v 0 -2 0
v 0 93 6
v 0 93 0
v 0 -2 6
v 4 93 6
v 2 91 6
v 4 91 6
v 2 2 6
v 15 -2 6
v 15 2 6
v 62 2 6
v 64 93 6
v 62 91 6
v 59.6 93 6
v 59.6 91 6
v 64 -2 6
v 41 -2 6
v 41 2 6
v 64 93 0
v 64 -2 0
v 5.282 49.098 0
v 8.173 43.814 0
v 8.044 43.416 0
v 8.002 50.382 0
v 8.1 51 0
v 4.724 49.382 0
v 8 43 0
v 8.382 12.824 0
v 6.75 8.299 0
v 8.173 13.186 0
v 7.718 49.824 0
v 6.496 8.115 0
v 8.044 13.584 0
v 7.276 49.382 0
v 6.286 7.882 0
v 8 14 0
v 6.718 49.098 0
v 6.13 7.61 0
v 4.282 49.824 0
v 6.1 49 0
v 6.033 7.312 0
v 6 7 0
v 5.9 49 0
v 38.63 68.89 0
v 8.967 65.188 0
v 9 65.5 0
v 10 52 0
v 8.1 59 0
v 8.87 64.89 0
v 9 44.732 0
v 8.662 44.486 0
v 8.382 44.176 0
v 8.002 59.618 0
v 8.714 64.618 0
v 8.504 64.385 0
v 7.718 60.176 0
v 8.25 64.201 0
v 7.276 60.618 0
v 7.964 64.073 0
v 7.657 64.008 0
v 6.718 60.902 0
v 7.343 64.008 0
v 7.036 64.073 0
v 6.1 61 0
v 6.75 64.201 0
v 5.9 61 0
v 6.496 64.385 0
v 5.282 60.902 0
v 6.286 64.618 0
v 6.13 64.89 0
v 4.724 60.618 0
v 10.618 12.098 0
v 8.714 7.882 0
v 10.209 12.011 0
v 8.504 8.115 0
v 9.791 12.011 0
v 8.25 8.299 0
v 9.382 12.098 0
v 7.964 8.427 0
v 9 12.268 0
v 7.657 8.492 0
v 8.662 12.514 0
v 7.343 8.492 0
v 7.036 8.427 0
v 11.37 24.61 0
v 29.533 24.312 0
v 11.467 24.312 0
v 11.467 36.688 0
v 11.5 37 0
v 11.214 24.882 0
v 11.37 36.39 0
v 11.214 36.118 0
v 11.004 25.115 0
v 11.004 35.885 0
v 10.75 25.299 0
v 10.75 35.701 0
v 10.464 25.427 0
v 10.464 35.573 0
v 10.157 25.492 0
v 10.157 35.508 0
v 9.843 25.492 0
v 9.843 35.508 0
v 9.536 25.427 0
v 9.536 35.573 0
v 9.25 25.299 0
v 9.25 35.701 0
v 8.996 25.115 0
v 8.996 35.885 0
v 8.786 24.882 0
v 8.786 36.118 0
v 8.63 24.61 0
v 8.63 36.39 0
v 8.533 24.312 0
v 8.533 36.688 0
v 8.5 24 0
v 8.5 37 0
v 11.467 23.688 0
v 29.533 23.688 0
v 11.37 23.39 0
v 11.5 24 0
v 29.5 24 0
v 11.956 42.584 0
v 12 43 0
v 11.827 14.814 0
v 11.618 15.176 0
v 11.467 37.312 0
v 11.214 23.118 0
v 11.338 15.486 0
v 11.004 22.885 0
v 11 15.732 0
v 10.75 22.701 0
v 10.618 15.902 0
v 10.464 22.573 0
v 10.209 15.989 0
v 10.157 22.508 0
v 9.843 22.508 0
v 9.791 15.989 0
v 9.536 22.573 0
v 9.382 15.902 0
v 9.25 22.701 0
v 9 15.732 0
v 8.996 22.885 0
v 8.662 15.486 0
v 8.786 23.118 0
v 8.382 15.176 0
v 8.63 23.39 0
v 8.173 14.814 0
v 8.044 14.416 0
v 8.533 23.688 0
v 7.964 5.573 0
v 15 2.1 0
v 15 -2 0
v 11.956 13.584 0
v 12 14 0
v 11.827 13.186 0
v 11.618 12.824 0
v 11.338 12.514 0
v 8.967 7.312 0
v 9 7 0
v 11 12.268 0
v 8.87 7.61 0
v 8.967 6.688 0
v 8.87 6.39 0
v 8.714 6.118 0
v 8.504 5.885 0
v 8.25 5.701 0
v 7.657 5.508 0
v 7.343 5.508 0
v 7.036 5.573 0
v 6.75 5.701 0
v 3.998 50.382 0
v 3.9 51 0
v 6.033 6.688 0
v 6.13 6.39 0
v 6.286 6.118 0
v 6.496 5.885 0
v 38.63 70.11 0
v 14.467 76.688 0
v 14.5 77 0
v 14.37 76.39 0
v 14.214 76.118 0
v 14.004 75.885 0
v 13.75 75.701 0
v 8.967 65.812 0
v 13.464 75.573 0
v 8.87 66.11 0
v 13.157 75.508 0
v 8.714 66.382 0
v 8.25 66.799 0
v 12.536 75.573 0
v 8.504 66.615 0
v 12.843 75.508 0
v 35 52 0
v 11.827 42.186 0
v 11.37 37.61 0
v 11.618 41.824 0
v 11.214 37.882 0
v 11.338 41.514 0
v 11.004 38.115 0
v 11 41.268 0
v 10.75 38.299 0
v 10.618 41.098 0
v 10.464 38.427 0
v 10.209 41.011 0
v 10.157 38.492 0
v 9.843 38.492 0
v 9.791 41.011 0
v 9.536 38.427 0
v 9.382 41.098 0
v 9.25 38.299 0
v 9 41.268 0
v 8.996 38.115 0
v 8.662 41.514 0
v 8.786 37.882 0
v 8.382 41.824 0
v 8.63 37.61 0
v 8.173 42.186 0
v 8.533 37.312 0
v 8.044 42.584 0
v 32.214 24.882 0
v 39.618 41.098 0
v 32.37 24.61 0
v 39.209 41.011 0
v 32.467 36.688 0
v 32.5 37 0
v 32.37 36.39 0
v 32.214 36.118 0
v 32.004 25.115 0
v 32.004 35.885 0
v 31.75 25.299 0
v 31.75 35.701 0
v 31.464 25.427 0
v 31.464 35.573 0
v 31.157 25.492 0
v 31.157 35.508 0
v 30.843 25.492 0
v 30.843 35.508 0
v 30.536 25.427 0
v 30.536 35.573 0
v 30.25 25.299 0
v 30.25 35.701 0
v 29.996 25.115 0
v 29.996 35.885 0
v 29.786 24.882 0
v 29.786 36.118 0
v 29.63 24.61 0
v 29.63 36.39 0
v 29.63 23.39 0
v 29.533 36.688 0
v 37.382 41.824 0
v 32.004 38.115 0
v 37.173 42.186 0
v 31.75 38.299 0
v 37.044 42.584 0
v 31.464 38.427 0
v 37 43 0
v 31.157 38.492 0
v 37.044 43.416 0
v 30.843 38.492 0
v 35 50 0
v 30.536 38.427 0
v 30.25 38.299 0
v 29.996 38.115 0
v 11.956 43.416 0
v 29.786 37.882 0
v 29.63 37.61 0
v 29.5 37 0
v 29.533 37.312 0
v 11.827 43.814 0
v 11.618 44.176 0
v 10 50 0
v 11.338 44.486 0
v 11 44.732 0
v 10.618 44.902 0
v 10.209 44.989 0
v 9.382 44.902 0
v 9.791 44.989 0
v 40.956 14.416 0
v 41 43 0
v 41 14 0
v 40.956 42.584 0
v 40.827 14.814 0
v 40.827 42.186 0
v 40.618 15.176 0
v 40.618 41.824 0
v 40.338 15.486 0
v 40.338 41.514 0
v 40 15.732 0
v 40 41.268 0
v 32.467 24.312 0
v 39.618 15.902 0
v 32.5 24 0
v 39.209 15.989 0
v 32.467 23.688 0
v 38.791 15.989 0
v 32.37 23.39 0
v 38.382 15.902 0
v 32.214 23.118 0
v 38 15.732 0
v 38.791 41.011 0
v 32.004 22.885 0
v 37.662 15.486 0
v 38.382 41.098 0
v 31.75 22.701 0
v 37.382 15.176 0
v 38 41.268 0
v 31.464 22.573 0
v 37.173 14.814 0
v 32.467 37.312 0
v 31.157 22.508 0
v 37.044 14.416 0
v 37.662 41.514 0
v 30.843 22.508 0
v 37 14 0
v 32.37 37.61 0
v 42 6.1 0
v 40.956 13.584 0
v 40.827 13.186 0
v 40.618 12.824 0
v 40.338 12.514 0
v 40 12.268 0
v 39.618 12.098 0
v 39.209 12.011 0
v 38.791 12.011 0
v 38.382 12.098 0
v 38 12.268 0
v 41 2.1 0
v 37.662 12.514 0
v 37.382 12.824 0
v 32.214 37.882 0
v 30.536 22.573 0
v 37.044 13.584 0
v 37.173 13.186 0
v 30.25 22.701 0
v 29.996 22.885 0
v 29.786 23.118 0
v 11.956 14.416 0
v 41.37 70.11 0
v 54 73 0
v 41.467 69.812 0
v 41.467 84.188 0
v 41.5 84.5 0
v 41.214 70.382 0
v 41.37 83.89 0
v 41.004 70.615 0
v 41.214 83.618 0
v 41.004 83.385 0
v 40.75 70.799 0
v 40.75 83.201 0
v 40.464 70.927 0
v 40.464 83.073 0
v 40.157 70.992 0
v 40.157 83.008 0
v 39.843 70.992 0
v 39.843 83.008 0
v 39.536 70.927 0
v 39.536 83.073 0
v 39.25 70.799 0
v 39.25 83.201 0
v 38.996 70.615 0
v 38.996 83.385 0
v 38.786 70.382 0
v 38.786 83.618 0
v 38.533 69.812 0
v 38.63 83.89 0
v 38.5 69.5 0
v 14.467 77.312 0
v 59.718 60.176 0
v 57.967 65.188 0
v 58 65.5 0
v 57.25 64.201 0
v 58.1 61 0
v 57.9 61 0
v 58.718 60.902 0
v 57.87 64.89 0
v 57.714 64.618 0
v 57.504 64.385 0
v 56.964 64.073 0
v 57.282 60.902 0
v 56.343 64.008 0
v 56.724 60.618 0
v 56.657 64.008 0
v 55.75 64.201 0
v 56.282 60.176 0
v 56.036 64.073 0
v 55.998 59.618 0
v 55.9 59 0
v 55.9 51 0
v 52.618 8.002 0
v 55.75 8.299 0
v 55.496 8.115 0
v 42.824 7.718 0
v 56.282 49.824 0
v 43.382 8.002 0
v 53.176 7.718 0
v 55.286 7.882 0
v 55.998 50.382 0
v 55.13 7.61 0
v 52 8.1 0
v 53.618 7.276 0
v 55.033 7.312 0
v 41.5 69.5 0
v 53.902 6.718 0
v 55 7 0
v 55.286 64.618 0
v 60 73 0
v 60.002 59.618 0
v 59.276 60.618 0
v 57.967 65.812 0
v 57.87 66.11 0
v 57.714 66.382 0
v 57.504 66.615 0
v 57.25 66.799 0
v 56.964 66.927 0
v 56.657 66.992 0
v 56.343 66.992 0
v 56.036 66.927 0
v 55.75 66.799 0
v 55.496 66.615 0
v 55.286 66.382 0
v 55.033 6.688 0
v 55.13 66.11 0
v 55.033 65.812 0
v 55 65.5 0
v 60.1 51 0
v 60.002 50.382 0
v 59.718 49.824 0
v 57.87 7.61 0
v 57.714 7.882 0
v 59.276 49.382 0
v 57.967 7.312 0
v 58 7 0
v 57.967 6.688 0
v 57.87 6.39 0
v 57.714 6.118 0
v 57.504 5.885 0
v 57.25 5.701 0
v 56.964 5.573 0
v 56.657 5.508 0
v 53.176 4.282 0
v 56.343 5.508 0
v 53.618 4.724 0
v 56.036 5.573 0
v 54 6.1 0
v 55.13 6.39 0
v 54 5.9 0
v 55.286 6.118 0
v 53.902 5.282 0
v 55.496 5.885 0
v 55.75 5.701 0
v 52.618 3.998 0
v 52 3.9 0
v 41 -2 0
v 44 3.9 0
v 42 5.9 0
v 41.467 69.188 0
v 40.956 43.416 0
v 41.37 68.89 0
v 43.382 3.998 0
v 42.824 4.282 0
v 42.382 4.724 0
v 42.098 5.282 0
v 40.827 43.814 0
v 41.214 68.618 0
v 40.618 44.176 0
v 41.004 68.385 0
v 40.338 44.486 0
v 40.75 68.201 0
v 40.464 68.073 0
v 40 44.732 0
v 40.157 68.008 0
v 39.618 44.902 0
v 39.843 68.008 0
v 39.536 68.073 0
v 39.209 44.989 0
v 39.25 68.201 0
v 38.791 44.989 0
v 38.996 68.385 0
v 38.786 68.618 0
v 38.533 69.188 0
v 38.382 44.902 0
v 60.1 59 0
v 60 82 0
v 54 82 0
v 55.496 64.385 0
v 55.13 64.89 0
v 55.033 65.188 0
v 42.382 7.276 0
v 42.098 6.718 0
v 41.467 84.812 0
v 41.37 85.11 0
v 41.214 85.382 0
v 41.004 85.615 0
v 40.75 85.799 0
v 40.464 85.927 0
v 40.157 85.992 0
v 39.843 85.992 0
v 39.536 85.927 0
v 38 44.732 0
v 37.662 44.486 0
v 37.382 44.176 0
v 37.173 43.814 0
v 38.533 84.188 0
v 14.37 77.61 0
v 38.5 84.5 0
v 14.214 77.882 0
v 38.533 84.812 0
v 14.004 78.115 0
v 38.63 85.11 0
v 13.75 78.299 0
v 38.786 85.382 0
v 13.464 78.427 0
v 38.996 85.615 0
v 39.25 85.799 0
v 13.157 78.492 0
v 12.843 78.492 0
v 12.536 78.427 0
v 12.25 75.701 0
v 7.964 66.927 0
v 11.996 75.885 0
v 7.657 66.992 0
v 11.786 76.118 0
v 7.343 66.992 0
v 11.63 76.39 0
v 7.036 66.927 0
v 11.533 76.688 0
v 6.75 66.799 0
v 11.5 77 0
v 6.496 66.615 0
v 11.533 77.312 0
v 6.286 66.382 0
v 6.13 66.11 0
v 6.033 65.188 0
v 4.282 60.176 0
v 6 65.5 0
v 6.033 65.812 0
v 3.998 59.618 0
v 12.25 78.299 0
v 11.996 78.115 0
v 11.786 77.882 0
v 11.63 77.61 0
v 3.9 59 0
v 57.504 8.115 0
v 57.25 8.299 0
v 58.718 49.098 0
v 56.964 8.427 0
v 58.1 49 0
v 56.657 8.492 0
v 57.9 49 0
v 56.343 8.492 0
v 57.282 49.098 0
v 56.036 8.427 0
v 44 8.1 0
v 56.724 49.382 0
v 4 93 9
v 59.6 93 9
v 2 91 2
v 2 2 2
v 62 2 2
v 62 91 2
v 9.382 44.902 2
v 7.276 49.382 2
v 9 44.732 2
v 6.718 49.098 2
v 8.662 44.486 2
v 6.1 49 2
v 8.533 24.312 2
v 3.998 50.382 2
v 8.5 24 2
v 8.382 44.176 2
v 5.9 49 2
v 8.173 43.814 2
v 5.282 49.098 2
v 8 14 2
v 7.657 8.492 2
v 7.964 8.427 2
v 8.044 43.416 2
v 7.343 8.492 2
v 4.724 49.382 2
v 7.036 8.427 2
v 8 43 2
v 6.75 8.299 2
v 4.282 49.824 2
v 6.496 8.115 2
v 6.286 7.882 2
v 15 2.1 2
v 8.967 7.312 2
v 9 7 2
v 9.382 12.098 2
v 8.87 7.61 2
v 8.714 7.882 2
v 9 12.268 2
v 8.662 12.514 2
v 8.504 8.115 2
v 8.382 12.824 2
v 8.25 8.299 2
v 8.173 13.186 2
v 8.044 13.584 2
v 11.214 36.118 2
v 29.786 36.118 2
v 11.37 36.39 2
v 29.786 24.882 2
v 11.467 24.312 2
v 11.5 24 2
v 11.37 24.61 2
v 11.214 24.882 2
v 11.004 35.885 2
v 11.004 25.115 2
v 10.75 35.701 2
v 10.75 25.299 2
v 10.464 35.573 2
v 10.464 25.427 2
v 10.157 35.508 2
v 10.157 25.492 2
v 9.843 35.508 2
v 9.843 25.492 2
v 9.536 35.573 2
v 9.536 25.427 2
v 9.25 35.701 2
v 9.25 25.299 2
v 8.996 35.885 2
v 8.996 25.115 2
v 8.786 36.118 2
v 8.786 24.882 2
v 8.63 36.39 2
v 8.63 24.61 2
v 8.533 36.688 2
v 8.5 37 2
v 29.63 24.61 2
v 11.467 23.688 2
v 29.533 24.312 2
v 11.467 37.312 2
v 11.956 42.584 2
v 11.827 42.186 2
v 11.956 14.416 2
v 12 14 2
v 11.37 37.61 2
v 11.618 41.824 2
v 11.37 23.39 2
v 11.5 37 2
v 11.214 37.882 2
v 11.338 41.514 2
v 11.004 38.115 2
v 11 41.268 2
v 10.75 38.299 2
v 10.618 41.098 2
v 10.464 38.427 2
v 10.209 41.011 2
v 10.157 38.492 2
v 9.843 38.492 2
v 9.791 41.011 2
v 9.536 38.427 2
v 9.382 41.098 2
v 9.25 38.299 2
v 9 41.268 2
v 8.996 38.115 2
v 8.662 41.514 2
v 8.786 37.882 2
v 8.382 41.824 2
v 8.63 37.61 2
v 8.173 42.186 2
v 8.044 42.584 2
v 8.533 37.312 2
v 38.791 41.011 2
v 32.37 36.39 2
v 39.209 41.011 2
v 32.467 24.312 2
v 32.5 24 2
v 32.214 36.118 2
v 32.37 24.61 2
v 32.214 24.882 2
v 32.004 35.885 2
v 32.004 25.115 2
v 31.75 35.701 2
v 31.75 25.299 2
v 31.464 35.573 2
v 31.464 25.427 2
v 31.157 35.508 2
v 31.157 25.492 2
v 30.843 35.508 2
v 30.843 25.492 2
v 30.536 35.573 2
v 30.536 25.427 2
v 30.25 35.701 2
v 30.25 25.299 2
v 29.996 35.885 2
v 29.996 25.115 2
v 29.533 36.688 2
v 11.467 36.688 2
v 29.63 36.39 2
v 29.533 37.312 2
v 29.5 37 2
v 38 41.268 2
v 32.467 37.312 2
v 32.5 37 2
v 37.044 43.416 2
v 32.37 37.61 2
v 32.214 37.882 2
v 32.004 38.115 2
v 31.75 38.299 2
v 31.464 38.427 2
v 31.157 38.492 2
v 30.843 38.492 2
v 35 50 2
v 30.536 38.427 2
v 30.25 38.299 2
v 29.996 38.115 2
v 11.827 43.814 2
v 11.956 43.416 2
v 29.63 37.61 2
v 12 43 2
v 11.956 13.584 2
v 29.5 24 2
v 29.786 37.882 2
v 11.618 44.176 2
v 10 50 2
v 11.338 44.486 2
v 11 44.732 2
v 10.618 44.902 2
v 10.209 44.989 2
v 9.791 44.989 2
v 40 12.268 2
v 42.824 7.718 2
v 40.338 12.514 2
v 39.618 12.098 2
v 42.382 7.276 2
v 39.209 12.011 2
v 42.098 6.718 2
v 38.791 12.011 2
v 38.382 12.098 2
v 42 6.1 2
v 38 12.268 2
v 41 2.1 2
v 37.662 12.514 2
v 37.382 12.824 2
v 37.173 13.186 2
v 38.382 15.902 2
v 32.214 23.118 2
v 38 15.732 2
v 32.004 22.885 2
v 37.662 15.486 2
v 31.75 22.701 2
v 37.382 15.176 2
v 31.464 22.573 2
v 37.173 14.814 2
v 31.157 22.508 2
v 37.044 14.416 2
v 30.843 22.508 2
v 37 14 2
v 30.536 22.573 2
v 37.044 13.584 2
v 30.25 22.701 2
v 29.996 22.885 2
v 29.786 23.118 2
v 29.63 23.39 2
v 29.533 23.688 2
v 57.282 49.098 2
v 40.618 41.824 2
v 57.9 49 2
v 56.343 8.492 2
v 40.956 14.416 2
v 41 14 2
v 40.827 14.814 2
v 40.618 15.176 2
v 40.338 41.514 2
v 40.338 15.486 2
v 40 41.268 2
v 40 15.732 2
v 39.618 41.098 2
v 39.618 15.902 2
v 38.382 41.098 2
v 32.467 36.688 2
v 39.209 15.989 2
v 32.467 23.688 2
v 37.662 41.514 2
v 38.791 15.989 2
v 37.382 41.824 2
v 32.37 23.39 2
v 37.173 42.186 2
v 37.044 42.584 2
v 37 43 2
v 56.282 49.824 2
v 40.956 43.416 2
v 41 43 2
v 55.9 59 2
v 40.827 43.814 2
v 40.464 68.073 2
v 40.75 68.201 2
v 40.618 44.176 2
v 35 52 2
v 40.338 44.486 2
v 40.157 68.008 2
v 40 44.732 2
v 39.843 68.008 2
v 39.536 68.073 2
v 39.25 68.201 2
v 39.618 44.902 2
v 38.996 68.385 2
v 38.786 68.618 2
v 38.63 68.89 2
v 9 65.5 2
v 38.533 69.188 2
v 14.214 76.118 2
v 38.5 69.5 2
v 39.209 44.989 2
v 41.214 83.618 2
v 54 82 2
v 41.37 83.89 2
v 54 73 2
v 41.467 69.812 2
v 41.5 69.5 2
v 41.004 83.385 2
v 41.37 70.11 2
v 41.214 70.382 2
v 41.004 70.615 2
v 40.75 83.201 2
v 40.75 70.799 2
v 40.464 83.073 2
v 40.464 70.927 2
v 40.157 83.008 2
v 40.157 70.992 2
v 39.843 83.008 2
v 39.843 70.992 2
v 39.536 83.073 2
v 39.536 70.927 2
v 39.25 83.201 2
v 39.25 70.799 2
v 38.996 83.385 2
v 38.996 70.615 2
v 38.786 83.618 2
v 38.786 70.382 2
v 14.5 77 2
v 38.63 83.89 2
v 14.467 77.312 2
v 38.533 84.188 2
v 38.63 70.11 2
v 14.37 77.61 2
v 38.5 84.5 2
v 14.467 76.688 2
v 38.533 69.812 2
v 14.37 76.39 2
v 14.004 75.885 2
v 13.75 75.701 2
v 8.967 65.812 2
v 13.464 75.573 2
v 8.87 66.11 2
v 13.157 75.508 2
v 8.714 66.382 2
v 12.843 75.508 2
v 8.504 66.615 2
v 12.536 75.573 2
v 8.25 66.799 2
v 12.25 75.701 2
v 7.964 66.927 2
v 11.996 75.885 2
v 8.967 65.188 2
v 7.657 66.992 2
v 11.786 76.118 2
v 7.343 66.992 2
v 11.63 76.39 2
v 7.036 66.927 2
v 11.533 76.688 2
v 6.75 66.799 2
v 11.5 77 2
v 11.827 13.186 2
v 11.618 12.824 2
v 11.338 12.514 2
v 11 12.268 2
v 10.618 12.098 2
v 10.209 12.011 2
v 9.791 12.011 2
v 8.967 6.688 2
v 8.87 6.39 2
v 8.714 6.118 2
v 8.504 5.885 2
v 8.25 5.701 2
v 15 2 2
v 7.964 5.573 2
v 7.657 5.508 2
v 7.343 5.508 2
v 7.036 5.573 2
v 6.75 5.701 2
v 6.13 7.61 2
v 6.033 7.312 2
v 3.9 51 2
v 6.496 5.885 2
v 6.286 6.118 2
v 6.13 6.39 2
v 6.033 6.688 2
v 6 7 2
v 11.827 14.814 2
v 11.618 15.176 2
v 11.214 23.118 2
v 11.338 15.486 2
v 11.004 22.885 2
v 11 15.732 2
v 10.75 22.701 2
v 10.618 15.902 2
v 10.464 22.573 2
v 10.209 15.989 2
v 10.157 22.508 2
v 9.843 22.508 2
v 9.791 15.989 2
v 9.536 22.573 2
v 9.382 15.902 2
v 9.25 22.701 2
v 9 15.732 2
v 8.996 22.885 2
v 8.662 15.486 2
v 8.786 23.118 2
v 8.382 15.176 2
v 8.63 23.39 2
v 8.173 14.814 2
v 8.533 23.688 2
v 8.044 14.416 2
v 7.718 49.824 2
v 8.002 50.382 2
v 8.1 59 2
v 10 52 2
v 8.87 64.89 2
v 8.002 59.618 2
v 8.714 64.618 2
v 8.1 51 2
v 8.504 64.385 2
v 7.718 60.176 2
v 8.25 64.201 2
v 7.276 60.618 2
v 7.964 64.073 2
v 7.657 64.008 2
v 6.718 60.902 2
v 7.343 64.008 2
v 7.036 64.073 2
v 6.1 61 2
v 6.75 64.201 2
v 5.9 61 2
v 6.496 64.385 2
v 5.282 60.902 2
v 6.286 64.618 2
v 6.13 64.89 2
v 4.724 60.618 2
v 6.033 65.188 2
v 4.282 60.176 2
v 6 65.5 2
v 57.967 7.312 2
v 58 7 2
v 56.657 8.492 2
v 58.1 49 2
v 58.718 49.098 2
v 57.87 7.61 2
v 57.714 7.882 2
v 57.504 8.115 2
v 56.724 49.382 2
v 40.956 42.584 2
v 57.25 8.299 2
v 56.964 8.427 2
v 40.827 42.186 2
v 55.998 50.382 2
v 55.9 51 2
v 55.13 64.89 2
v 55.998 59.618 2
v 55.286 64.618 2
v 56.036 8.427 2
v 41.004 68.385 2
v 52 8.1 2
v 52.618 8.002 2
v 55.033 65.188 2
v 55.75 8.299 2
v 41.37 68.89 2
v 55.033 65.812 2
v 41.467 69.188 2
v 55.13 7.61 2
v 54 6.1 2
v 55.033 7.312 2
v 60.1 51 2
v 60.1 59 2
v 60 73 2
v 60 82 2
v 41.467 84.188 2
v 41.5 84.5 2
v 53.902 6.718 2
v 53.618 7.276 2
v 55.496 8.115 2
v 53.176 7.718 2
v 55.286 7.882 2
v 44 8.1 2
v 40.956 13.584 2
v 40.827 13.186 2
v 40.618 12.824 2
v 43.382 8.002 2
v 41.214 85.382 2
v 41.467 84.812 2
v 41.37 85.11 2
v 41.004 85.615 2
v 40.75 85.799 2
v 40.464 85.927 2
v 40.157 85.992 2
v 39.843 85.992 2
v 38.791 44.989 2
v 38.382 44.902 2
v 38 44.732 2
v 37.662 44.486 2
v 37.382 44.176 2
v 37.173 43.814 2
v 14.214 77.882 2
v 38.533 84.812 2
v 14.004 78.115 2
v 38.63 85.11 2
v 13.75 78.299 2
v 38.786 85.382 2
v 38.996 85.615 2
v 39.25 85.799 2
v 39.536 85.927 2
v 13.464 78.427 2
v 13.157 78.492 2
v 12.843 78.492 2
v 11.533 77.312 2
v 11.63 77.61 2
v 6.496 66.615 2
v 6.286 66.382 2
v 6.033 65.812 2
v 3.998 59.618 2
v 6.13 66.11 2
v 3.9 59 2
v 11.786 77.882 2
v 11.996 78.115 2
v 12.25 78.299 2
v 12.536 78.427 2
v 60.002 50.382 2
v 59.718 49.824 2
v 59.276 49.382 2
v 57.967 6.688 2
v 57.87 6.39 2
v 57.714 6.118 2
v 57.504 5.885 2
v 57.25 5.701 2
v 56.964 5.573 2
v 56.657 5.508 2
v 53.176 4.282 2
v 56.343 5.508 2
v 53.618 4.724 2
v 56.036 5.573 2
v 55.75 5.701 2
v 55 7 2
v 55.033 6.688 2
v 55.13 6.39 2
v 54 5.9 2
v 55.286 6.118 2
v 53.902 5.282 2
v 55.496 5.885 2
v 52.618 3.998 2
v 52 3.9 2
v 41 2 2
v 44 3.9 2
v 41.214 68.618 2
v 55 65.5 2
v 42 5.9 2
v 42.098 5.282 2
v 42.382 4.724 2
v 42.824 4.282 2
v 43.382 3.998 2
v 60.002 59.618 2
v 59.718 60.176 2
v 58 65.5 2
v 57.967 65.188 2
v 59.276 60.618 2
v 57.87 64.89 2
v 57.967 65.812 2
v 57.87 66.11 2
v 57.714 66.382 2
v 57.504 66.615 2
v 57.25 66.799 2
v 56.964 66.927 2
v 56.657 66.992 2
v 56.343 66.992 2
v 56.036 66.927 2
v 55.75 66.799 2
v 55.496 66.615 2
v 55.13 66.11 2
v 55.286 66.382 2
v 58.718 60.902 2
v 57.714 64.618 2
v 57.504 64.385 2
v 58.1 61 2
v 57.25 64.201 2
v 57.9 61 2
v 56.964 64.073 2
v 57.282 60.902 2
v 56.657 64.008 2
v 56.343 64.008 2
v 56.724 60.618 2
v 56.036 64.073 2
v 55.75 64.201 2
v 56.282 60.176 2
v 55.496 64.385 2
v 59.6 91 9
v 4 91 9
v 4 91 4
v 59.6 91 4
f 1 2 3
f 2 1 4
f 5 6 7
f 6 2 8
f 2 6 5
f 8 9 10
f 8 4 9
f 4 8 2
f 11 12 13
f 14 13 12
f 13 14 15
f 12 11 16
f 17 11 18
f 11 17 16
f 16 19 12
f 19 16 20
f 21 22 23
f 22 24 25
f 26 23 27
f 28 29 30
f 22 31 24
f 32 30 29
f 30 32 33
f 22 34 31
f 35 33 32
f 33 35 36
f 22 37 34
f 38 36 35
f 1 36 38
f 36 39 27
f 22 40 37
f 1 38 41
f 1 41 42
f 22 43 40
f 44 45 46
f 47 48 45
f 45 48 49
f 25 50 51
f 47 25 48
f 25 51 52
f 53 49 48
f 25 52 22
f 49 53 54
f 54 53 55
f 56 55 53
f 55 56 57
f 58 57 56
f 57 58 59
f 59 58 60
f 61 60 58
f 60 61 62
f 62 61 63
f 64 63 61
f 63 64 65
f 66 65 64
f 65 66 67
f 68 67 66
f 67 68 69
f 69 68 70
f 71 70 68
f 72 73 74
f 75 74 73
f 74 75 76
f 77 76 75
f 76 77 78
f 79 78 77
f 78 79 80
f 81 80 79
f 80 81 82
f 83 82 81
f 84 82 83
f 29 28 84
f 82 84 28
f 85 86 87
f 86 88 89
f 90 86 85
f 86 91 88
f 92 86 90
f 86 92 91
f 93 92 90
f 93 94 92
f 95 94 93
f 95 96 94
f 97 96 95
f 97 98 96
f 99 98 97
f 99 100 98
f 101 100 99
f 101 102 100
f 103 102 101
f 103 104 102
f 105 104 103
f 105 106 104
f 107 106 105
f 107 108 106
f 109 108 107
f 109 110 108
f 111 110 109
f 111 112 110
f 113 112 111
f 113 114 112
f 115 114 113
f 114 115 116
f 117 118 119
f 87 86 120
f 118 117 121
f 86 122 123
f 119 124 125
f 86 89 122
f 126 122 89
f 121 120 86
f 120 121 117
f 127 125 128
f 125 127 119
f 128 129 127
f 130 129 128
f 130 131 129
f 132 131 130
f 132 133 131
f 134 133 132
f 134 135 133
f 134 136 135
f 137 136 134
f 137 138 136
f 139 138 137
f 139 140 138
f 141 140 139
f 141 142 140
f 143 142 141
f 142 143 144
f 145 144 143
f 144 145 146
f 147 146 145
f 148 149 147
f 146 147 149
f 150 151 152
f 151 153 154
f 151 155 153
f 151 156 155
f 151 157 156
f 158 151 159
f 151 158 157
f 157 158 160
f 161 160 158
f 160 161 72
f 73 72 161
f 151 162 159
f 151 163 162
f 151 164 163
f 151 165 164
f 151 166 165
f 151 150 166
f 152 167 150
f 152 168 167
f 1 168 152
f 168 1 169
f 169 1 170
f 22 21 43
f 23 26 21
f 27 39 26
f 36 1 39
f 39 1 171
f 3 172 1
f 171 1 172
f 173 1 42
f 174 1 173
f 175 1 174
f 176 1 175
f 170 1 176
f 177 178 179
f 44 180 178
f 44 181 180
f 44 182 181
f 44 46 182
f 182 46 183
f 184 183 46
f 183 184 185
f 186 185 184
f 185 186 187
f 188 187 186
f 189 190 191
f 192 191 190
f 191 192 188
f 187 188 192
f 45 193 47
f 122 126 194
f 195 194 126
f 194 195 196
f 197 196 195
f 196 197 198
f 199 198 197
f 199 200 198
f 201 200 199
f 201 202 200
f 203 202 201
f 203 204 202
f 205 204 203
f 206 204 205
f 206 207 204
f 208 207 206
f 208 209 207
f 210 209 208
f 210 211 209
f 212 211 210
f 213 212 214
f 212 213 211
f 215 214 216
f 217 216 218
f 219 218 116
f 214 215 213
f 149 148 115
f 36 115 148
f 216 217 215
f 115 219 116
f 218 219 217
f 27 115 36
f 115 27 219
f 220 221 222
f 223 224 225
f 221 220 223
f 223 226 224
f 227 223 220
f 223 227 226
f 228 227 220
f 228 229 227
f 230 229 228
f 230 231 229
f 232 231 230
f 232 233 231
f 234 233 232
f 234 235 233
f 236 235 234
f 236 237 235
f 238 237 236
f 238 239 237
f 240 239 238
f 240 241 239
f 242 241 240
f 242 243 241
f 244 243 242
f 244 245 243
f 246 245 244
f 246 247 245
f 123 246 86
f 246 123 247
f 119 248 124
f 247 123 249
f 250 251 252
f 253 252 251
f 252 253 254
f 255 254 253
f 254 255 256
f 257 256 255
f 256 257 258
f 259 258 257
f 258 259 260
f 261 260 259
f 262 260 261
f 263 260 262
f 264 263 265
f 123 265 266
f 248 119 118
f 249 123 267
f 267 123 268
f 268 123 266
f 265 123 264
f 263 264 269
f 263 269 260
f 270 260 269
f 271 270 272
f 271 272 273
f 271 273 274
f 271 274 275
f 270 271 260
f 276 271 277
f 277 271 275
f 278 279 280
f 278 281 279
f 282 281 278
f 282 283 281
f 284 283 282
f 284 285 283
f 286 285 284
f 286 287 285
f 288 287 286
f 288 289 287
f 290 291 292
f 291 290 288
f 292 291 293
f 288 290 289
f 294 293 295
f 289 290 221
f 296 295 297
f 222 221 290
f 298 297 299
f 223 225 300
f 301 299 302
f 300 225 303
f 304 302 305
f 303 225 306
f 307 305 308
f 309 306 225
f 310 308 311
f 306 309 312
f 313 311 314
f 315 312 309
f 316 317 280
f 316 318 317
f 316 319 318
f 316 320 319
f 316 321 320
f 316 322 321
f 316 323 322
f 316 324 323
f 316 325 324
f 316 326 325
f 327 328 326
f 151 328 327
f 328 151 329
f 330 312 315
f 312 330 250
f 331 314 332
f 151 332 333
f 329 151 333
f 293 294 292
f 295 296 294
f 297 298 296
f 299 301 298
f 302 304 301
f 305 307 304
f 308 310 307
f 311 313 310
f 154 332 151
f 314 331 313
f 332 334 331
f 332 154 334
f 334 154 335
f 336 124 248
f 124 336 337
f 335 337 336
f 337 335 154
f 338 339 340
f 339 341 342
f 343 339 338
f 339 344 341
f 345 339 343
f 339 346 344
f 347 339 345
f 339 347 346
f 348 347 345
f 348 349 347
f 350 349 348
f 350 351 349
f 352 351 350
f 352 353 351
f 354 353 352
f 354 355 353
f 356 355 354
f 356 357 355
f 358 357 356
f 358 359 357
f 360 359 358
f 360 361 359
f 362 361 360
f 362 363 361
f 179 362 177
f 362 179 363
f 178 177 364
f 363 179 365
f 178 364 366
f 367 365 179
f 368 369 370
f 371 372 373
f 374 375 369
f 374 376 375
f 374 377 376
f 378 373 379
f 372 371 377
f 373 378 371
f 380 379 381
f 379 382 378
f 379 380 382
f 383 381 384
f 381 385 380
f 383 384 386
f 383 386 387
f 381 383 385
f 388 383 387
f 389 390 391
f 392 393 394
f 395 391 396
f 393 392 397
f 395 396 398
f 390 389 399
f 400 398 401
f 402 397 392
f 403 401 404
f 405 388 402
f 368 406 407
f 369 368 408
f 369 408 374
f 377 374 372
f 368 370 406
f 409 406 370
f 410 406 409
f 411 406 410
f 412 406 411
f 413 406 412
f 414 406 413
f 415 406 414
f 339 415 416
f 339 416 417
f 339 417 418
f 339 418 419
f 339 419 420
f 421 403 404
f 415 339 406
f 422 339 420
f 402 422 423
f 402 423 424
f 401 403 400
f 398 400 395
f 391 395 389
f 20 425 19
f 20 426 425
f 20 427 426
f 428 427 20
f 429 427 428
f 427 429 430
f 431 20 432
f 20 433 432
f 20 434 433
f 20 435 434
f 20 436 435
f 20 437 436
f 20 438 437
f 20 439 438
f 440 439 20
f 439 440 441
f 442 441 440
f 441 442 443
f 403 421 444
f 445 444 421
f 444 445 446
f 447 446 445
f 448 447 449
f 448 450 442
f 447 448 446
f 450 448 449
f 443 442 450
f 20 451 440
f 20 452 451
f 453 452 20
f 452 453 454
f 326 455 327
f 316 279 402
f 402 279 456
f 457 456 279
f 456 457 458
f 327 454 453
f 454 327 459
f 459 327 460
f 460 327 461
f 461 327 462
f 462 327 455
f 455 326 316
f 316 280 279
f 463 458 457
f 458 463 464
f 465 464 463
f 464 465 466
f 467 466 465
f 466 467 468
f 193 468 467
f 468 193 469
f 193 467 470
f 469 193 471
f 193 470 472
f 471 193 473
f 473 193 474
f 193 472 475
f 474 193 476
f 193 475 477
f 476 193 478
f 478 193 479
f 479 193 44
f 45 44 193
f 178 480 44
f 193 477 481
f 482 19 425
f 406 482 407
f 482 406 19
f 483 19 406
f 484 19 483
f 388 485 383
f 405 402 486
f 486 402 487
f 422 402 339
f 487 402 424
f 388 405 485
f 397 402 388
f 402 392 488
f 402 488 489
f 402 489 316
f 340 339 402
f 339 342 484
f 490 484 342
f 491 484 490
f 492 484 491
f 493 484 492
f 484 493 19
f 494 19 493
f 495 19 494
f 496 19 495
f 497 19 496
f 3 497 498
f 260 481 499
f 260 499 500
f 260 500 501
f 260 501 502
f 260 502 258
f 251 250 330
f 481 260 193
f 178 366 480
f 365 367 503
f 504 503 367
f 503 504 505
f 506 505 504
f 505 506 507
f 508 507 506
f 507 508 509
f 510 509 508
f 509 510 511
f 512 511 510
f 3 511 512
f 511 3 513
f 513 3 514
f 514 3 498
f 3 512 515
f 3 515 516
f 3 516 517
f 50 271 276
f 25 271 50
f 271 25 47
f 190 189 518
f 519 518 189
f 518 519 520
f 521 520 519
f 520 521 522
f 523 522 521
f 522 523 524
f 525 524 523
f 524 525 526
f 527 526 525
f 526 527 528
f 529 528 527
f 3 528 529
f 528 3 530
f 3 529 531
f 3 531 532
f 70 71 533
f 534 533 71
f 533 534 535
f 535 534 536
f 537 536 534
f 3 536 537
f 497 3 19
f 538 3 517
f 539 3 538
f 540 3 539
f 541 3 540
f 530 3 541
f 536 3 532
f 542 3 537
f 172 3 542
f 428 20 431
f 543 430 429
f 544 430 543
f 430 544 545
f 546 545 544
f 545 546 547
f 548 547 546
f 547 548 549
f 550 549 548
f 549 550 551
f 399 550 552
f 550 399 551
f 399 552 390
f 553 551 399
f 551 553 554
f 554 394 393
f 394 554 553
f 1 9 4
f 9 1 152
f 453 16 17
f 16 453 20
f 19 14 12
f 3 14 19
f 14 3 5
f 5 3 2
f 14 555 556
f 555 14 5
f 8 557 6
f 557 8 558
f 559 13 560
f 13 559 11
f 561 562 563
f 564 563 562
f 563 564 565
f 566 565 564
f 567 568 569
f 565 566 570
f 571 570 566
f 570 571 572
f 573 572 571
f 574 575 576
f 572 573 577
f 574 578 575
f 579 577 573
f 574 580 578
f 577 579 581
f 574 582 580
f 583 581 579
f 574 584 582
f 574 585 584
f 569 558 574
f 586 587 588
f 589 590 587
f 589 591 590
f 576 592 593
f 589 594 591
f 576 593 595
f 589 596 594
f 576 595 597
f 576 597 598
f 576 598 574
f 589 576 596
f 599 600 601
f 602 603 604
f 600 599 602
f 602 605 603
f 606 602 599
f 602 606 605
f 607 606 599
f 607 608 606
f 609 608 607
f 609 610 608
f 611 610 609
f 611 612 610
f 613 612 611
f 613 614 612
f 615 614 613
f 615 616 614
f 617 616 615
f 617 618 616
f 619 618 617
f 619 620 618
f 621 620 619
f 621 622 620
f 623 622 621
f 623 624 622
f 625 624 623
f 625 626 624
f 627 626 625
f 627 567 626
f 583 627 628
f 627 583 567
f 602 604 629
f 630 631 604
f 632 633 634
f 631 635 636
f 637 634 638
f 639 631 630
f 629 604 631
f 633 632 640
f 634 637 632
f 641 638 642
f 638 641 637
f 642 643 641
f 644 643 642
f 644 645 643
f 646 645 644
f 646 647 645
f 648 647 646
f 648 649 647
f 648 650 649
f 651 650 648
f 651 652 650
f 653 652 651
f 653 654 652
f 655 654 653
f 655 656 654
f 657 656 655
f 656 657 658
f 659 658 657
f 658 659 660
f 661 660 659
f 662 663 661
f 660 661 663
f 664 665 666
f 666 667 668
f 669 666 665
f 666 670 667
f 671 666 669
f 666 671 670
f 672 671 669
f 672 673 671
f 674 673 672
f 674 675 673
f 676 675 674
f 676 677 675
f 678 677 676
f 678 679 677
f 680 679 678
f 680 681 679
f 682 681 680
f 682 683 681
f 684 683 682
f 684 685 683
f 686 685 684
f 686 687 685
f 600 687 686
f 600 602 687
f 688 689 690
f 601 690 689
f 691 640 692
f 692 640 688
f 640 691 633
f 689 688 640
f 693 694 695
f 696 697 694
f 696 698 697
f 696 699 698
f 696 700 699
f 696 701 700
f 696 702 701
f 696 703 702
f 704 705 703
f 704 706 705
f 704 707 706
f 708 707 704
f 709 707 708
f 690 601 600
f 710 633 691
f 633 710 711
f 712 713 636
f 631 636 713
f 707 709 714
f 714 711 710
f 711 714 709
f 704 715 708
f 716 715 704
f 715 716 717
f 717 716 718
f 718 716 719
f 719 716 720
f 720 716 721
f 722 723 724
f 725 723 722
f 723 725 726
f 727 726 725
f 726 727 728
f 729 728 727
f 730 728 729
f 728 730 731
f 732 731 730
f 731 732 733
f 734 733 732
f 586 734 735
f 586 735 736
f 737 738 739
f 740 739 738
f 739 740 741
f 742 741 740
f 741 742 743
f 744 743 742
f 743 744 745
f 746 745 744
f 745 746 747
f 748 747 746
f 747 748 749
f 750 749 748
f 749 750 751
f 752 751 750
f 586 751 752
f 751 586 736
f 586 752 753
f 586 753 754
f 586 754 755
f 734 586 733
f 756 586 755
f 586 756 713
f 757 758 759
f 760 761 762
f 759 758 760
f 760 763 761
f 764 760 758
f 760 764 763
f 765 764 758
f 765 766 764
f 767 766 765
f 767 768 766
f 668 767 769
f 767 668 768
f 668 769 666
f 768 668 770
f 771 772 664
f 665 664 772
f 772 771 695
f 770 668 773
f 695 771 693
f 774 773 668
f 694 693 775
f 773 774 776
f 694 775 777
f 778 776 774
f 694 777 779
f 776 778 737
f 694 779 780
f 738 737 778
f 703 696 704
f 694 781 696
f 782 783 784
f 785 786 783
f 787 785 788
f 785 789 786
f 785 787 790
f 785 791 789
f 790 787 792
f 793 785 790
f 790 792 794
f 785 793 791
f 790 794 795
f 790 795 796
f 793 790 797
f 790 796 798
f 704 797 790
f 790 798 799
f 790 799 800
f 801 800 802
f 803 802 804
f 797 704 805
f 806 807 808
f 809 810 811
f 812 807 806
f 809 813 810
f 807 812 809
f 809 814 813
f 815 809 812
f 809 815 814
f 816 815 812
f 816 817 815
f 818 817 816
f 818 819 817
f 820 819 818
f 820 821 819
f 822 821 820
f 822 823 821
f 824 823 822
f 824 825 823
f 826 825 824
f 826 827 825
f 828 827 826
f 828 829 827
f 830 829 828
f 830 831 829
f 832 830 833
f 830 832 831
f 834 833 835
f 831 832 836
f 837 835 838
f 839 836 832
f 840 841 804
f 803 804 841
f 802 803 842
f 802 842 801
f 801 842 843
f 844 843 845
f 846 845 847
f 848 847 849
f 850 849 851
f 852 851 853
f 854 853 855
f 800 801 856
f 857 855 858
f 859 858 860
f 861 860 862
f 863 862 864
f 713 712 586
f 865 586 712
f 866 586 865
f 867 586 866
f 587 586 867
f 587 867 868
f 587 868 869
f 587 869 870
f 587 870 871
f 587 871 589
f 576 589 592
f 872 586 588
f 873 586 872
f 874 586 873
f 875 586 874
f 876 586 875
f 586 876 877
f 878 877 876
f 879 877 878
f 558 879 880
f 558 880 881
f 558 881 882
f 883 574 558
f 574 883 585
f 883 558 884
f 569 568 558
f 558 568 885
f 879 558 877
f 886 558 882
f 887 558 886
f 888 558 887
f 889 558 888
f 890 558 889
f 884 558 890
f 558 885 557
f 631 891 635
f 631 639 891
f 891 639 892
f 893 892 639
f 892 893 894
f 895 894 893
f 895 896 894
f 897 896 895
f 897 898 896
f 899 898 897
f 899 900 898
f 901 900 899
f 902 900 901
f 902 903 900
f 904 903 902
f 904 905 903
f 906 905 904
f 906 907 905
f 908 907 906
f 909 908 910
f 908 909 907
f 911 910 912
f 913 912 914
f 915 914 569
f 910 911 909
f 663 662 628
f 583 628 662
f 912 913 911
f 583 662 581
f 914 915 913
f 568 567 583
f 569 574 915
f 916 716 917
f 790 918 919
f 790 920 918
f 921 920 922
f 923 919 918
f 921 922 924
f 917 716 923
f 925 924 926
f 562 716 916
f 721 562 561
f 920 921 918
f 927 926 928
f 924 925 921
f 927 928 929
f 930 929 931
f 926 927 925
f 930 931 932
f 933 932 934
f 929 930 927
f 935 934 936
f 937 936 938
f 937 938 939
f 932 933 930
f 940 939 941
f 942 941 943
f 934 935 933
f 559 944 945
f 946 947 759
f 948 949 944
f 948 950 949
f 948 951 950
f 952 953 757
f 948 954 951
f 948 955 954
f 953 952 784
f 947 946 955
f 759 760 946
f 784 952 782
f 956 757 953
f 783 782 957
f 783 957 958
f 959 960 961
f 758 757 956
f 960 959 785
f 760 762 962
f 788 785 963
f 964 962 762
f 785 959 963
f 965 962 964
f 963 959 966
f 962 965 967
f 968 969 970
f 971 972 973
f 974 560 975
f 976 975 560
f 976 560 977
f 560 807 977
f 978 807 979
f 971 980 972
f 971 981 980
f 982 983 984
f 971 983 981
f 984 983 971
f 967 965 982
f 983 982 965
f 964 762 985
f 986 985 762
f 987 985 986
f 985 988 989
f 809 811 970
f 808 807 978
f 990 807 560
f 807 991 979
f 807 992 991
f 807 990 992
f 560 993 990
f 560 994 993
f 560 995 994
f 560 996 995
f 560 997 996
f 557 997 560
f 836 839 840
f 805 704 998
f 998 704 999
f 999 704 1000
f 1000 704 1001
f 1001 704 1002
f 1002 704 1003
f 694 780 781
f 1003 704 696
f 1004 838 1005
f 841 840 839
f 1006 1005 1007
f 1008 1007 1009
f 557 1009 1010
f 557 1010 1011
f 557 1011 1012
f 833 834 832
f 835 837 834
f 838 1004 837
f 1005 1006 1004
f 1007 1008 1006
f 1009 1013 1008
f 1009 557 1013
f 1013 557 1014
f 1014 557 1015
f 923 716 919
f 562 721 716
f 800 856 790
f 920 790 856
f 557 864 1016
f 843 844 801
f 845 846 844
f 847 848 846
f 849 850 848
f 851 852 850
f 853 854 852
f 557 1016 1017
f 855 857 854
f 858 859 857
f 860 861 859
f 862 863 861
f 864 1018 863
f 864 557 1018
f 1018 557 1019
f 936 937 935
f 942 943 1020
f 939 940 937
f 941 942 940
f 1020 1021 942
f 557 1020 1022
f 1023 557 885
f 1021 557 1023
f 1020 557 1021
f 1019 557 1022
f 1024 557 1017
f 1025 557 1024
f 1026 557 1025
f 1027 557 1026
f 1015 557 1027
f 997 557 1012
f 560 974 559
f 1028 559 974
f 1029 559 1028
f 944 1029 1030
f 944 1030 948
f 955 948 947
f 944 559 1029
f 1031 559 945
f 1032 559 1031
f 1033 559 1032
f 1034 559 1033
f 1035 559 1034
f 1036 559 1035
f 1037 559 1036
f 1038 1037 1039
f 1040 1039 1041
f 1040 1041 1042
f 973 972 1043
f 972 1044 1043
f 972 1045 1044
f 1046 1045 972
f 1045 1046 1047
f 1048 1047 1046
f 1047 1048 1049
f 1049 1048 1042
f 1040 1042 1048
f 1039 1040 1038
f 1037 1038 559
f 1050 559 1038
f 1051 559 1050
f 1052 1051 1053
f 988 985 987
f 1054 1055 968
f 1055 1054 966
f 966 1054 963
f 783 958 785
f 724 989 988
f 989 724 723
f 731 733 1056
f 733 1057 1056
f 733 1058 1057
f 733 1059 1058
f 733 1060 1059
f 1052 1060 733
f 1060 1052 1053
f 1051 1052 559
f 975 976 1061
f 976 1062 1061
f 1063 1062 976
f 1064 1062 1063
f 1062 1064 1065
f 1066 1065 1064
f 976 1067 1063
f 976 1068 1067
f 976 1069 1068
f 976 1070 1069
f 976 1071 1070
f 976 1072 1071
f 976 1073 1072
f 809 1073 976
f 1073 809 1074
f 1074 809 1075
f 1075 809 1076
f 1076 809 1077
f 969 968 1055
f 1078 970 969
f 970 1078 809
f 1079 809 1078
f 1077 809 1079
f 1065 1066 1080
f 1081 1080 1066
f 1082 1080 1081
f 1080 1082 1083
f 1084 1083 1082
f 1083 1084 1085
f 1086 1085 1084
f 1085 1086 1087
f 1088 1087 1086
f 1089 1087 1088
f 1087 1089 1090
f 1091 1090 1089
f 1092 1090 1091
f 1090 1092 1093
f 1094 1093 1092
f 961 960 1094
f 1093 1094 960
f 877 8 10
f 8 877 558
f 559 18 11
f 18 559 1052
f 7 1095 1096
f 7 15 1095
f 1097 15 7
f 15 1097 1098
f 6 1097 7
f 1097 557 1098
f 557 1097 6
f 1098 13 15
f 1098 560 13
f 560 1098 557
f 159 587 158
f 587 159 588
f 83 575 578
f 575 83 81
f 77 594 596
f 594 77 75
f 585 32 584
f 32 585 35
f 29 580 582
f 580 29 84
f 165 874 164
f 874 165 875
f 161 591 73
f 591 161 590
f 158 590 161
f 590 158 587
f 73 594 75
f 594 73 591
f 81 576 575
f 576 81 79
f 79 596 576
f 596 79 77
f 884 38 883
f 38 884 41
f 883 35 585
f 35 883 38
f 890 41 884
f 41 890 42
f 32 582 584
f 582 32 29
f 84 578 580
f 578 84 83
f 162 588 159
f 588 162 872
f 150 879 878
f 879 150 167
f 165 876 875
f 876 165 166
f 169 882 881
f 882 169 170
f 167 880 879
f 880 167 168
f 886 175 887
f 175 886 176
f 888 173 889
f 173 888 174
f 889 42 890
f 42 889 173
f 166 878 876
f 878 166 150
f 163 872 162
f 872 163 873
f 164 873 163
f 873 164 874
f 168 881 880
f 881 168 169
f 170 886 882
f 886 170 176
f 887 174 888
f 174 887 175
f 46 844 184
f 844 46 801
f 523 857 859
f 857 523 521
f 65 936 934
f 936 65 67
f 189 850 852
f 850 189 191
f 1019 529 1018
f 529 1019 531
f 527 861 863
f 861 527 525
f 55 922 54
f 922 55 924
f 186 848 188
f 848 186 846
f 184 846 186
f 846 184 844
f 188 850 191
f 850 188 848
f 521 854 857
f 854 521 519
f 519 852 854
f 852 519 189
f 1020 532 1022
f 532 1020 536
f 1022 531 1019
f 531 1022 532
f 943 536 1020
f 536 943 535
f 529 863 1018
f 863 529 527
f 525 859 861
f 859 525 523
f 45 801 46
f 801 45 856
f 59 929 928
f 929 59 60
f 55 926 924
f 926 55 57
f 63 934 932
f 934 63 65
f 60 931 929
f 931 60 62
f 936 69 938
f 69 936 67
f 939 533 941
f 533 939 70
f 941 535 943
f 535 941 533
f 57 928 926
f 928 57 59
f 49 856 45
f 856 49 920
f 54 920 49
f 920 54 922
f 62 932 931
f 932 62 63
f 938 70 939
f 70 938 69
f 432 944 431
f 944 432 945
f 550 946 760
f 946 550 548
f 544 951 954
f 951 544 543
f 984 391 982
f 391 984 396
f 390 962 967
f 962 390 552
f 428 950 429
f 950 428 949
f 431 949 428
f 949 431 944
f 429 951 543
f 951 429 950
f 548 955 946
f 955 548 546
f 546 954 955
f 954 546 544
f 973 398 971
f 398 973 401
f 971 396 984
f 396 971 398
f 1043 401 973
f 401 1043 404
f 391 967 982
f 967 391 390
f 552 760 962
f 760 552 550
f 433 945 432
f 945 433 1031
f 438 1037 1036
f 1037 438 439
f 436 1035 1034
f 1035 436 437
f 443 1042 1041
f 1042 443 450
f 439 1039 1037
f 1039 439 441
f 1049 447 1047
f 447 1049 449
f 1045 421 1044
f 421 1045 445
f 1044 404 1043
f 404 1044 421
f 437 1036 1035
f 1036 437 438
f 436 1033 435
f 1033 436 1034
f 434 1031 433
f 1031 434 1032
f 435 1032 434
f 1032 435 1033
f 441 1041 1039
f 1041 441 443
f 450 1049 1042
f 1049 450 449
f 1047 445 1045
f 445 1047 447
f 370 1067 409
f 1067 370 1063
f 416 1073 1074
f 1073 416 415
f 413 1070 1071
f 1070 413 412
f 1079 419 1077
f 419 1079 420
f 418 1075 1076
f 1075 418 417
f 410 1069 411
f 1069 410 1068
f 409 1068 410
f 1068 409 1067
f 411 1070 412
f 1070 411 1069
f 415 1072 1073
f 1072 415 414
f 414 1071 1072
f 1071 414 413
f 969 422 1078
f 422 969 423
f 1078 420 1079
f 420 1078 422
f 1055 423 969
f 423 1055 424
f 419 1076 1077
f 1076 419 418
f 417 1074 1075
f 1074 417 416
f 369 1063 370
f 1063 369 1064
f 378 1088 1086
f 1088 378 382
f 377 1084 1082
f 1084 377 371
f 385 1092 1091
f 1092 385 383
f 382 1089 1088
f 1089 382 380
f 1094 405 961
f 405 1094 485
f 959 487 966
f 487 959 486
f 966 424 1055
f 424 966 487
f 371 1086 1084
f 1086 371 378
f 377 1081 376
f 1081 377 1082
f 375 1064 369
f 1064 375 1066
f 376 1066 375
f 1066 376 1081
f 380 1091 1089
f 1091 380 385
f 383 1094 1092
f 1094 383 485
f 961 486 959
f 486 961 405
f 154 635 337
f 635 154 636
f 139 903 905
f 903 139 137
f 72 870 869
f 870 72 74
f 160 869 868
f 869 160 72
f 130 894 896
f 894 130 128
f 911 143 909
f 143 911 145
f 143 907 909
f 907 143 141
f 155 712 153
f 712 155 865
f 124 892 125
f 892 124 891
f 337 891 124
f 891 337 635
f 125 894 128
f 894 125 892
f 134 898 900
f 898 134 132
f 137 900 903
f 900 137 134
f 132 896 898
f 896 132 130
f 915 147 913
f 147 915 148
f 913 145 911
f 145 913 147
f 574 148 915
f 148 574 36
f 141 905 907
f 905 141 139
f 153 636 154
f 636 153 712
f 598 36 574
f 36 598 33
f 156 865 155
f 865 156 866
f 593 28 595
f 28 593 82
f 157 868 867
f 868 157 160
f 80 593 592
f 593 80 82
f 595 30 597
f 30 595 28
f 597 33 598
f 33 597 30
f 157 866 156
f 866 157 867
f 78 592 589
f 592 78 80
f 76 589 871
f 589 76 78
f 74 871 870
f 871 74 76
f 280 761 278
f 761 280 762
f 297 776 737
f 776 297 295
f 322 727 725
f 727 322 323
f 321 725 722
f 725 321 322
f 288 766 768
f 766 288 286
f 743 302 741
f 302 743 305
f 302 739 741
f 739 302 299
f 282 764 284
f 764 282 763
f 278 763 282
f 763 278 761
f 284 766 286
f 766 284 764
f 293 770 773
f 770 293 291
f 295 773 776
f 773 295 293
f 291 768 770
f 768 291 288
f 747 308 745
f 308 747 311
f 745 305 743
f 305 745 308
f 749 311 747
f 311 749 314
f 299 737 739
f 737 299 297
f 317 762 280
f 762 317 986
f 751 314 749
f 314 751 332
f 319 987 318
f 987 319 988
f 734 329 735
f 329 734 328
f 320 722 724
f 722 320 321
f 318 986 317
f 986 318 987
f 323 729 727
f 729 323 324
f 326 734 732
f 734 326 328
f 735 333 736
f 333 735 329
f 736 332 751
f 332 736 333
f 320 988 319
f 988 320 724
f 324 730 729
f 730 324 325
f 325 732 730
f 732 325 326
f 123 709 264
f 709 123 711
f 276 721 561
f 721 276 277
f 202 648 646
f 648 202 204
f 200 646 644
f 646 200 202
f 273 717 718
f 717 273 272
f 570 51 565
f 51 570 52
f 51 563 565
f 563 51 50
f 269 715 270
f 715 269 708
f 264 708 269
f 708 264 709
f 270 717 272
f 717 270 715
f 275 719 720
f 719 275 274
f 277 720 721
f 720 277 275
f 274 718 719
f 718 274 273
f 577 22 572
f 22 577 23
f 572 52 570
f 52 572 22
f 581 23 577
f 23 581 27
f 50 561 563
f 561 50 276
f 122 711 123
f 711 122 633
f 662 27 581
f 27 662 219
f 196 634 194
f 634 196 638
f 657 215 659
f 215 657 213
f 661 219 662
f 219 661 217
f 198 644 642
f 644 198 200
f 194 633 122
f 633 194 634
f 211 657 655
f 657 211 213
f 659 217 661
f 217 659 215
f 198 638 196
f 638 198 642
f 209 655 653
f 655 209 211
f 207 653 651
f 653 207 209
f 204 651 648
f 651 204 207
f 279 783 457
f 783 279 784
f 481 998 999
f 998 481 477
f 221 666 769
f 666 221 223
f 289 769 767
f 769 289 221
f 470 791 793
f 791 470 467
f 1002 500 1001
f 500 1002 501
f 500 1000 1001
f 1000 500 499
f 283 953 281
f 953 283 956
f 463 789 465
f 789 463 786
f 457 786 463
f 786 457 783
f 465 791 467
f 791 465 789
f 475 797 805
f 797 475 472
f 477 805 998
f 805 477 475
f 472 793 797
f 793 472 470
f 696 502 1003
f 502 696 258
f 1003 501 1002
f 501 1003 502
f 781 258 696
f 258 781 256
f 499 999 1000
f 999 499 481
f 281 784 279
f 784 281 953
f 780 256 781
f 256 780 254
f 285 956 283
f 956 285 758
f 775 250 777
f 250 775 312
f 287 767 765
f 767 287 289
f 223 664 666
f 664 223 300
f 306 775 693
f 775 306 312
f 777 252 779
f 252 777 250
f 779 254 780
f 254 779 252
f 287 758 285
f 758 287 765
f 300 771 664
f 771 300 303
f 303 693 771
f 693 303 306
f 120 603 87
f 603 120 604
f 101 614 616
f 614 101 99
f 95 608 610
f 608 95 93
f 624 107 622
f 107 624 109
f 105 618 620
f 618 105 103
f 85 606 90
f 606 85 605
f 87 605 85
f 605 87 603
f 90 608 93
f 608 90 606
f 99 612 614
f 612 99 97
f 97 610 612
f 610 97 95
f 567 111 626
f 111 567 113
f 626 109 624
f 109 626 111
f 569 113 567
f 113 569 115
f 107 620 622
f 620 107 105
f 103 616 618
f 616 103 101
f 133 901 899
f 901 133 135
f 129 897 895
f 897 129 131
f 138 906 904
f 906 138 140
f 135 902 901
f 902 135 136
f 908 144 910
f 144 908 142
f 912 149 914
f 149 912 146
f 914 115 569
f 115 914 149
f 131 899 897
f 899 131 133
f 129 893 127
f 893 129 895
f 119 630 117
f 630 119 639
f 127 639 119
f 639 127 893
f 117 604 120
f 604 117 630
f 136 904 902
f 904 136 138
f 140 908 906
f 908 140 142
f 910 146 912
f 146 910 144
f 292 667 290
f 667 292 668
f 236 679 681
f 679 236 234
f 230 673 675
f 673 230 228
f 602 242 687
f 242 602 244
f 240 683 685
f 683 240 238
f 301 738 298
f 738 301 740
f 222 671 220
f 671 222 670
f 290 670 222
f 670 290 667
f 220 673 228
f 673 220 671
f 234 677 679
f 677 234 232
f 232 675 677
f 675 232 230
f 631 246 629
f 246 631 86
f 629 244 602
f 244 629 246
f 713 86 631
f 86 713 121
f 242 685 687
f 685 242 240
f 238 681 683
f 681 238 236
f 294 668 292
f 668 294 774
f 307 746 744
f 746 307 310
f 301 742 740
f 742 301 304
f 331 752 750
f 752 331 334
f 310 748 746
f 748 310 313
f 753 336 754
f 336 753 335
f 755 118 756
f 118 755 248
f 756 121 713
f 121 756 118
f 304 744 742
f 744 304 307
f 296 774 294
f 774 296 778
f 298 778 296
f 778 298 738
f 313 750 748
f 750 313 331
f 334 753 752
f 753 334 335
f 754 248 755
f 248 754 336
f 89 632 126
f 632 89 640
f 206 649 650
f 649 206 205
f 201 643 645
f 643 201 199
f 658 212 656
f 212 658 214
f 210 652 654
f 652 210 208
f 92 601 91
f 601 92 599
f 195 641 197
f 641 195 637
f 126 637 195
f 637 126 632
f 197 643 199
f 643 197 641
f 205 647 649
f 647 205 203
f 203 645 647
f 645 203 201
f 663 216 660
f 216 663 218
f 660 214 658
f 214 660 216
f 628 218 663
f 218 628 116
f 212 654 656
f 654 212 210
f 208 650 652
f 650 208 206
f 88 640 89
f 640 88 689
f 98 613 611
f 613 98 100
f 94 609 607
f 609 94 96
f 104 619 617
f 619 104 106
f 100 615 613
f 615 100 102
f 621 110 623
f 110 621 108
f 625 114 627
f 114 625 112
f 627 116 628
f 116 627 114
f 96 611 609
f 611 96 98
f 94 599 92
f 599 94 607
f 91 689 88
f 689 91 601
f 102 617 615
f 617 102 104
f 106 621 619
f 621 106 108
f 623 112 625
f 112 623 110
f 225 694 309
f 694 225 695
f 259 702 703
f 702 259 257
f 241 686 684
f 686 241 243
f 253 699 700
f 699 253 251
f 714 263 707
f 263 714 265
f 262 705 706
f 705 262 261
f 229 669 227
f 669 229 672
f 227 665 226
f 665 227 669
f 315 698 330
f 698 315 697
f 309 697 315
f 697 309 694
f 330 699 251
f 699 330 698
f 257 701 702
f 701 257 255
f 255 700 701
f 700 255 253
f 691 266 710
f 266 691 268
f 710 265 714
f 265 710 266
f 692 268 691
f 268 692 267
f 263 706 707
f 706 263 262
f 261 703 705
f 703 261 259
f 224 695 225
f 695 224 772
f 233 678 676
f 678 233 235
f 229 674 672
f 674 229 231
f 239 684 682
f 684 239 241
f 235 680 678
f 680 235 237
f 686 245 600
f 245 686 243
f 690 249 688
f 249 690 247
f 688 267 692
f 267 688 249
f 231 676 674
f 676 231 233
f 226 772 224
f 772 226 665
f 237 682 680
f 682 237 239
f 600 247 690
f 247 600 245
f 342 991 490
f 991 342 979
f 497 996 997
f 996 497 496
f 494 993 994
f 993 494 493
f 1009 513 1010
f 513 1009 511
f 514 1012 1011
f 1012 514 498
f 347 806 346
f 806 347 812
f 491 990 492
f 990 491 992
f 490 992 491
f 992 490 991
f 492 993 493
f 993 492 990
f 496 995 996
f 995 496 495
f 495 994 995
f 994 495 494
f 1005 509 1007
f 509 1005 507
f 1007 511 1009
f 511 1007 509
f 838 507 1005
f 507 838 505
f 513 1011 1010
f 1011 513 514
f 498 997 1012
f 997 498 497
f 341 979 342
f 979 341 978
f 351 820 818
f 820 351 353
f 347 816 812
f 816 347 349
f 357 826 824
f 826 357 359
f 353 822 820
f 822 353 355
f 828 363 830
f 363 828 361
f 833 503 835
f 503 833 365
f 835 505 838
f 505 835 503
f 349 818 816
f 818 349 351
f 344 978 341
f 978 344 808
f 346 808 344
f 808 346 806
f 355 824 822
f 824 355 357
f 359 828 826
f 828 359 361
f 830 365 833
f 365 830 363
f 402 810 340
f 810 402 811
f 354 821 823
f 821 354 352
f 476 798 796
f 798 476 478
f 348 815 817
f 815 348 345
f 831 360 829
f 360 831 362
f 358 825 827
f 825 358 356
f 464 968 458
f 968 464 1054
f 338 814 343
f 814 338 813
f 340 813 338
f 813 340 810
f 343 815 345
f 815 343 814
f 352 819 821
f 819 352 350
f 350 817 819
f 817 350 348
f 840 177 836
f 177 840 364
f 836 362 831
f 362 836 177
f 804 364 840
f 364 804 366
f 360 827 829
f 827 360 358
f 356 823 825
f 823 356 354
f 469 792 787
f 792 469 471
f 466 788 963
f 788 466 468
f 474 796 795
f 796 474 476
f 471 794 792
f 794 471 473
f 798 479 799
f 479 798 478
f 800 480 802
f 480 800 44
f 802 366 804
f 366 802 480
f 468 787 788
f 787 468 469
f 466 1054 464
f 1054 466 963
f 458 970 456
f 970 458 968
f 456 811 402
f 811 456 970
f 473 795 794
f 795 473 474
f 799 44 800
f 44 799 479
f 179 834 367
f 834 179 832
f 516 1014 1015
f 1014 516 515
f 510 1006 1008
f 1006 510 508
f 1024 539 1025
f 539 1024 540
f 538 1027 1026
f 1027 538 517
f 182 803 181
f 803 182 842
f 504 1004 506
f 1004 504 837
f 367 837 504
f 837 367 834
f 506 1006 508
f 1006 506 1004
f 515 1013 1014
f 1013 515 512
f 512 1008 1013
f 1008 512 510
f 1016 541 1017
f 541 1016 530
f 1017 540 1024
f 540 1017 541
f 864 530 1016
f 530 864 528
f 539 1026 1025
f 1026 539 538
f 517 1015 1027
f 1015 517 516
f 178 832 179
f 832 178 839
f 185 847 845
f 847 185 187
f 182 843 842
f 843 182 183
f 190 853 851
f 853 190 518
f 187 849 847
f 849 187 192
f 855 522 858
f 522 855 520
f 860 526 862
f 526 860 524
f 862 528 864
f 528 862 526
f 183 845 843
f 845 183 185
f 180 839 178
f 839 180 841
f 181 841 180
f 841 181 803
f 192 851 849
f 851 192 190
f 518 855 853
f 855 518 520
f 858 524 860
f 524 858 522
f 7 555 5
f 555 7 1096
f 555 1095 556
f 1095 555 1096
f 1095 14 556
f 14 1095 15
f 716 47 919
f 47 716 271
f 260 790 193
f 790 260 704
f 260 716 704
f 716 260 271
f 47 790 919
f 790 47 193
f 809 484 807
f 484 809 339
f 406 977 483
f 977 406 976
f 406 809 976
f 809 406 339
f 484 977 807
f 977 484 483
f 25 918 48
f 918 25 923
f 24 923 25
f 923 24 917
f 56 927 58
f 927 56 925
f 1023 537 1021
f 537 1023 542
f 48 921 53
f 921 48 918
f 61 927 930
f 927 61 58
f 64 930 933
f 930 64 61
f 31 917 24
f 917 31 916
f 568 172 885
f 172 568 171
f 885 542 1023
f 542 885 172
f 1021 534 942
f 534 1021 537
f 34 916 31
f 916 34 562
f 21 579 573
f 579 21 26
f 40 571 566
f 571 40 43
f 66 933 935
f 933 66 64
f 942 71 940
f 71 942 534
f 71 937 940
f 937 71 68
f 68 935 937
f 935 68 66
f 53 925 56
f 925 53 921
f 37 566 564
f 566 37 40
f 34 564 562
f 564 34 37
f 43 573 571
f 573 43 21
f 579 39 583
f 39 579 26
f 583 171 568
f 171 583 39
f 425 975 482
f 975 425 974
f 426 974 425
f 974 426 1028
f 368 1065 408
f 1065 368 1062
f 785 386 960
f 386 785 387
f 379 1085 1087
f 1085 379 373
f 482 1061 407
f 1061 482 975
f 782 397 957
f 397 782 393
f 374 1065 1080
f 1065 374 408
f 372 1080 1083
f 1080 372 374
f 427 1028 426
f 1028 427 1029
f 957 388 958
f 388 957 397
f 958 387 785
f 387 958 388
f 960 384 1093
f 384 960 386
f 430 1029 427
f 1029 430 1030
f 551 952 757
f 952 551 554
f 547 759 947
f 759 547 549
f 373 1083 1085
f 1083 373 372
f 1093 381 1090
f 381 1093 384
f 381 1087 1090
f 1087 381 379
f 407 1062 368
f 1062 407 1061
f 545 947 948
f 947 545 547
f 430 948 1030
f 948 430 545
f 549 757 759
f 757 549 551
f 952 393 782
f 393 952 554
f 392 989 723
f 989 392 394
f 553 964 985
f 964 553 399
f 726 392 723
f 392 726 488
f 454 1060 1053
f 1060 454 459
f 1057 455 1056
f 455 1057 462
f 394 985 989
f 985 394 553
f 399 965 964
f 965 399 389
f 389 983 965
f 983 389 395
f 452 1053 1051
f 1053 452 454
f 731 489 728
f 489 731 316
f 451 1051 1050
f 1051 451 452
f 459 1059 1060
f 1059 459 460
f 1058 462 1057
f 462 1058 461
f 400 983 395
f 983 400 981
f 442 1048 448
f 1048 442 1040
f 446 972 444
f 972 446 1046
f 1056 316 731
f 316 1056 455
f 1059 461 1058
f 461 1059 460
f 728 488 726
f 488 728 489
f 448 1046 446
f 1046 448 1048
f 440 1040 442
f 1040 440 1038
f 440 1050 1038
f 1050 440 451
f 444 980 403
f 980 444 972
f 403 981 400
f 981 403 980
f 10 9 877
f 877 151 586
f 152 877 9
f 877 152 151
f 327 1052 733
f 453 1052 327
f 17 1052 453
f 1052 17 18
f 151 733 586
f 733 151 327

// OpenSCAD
// RPi Case Cover
// by Ming-Dao Chia
// for the Borevitz Lab, Australian National University

// Settings
lid_height = 6; // Total lid height, not including the little front tab
rounding = 2; // just for the cable tie slots (less = sharper corners)
circle_res = 20; // can increase for final export

// just the cover without holes
module baseCover(){ 
    union(){
    difference(){
        translate([0,-2,0]) // slight shift to fit the thicker mounting flap
        cube([64,95,lid_height]); // if case only, y=93
        translate([2,2,2]) 
            cube([60,89,lid_height]);
    }
    // front flap helps prevent unwanted sideways movement
    translate([4,91,lid_height-2]) 
    cube([55.6,2,5]);
    }
}

// configurable hole for screws
module screwHole(diameter, x, y){ 
    translate([x,y,-2])
    cylinder(d=diameter, h=10, $fs=0.2);
}

// slots for ribbon wires
module cableSlot(xpos, ypos, xsize, ysize){ 
    translate([xpos,ypos,-2])
    cube([xsize,ysize,10]);
}

// rods to connect to case bottom
module baseMountingHoles(){ 
    screwHole(3, 7.5, 7);
    screwHole(3, 7.5, 65.5);
    screwHole(3, 56.5, 7);
    screwHole(3, 56.5, 65.5);
}
    
// larger 180 camera
module bigCamera(xpos,ypos){
    screwHole(4, xpos,ypos);
    screwHole(4, xpos+29,ypos);
    screwHole(4, xpos,ypos+29);
    screwHole(4, xpos+29,ypos+29);
}

// fits standard RPi camera
module smallCamera(xpos,ypos){
    screwHole(3,xpos,ypos);
    screwHole(3,xpos+21,ypos);
    screwHole(3,xpos,ypos+13);
    screwHole(3,xpos+21,ypos+13);
}

// fits current temperature/humidity sensor
module tempHumiditySensor(xpos,ypos){
    screwHole(3, xpos,ypos);
    screwHole(3, xpos,ypos-15);
    screwHole(3,xpos-27,ypos-7.5);
}

// Generic rounded rectangle module, from the bottom
module sidePort(x,y, rounding=rounding){
    rotate([0,0,0])
    minkowski()
    {
      cube([y-rounding*2,x-rounding*2,1],center=true);
      cylinder(r=rounding,h=5, $fn=circle_res);
    }
}

// Holes for cable ties
module cableTiePort(x,y){
    translate([x,y,-2])
    sidePort(12,4.2);
}

difference(){
    baseCover(); // everything is subtracted from this
    // Fits RPi screws
    baseMountingHoles();
    // camera ribbon cable
    cableSlot(10,50,25,2);
    bigCamera(10,14);
    smallCamera(10,24);
    tempHumiditySensor(40,84.5);
    // humidity sensor cable
    cableSlot(54,73,6,9); 
    // cable ties to secure top and bottom
    cableTiePort(6,55);
    cableTiePort(58,55);
    rotate([0,0,90])
    cableTiePort(6,-48);
    // allows slot for other side of case
    translate([15,-2.1,-1])
    cube([26,4.2,lid_height+2]);
}

// uncommment to import other half for debugging
//translate([64,0,37]) rotate([0,180,0]) import("RPiCC_bottom.stl");
